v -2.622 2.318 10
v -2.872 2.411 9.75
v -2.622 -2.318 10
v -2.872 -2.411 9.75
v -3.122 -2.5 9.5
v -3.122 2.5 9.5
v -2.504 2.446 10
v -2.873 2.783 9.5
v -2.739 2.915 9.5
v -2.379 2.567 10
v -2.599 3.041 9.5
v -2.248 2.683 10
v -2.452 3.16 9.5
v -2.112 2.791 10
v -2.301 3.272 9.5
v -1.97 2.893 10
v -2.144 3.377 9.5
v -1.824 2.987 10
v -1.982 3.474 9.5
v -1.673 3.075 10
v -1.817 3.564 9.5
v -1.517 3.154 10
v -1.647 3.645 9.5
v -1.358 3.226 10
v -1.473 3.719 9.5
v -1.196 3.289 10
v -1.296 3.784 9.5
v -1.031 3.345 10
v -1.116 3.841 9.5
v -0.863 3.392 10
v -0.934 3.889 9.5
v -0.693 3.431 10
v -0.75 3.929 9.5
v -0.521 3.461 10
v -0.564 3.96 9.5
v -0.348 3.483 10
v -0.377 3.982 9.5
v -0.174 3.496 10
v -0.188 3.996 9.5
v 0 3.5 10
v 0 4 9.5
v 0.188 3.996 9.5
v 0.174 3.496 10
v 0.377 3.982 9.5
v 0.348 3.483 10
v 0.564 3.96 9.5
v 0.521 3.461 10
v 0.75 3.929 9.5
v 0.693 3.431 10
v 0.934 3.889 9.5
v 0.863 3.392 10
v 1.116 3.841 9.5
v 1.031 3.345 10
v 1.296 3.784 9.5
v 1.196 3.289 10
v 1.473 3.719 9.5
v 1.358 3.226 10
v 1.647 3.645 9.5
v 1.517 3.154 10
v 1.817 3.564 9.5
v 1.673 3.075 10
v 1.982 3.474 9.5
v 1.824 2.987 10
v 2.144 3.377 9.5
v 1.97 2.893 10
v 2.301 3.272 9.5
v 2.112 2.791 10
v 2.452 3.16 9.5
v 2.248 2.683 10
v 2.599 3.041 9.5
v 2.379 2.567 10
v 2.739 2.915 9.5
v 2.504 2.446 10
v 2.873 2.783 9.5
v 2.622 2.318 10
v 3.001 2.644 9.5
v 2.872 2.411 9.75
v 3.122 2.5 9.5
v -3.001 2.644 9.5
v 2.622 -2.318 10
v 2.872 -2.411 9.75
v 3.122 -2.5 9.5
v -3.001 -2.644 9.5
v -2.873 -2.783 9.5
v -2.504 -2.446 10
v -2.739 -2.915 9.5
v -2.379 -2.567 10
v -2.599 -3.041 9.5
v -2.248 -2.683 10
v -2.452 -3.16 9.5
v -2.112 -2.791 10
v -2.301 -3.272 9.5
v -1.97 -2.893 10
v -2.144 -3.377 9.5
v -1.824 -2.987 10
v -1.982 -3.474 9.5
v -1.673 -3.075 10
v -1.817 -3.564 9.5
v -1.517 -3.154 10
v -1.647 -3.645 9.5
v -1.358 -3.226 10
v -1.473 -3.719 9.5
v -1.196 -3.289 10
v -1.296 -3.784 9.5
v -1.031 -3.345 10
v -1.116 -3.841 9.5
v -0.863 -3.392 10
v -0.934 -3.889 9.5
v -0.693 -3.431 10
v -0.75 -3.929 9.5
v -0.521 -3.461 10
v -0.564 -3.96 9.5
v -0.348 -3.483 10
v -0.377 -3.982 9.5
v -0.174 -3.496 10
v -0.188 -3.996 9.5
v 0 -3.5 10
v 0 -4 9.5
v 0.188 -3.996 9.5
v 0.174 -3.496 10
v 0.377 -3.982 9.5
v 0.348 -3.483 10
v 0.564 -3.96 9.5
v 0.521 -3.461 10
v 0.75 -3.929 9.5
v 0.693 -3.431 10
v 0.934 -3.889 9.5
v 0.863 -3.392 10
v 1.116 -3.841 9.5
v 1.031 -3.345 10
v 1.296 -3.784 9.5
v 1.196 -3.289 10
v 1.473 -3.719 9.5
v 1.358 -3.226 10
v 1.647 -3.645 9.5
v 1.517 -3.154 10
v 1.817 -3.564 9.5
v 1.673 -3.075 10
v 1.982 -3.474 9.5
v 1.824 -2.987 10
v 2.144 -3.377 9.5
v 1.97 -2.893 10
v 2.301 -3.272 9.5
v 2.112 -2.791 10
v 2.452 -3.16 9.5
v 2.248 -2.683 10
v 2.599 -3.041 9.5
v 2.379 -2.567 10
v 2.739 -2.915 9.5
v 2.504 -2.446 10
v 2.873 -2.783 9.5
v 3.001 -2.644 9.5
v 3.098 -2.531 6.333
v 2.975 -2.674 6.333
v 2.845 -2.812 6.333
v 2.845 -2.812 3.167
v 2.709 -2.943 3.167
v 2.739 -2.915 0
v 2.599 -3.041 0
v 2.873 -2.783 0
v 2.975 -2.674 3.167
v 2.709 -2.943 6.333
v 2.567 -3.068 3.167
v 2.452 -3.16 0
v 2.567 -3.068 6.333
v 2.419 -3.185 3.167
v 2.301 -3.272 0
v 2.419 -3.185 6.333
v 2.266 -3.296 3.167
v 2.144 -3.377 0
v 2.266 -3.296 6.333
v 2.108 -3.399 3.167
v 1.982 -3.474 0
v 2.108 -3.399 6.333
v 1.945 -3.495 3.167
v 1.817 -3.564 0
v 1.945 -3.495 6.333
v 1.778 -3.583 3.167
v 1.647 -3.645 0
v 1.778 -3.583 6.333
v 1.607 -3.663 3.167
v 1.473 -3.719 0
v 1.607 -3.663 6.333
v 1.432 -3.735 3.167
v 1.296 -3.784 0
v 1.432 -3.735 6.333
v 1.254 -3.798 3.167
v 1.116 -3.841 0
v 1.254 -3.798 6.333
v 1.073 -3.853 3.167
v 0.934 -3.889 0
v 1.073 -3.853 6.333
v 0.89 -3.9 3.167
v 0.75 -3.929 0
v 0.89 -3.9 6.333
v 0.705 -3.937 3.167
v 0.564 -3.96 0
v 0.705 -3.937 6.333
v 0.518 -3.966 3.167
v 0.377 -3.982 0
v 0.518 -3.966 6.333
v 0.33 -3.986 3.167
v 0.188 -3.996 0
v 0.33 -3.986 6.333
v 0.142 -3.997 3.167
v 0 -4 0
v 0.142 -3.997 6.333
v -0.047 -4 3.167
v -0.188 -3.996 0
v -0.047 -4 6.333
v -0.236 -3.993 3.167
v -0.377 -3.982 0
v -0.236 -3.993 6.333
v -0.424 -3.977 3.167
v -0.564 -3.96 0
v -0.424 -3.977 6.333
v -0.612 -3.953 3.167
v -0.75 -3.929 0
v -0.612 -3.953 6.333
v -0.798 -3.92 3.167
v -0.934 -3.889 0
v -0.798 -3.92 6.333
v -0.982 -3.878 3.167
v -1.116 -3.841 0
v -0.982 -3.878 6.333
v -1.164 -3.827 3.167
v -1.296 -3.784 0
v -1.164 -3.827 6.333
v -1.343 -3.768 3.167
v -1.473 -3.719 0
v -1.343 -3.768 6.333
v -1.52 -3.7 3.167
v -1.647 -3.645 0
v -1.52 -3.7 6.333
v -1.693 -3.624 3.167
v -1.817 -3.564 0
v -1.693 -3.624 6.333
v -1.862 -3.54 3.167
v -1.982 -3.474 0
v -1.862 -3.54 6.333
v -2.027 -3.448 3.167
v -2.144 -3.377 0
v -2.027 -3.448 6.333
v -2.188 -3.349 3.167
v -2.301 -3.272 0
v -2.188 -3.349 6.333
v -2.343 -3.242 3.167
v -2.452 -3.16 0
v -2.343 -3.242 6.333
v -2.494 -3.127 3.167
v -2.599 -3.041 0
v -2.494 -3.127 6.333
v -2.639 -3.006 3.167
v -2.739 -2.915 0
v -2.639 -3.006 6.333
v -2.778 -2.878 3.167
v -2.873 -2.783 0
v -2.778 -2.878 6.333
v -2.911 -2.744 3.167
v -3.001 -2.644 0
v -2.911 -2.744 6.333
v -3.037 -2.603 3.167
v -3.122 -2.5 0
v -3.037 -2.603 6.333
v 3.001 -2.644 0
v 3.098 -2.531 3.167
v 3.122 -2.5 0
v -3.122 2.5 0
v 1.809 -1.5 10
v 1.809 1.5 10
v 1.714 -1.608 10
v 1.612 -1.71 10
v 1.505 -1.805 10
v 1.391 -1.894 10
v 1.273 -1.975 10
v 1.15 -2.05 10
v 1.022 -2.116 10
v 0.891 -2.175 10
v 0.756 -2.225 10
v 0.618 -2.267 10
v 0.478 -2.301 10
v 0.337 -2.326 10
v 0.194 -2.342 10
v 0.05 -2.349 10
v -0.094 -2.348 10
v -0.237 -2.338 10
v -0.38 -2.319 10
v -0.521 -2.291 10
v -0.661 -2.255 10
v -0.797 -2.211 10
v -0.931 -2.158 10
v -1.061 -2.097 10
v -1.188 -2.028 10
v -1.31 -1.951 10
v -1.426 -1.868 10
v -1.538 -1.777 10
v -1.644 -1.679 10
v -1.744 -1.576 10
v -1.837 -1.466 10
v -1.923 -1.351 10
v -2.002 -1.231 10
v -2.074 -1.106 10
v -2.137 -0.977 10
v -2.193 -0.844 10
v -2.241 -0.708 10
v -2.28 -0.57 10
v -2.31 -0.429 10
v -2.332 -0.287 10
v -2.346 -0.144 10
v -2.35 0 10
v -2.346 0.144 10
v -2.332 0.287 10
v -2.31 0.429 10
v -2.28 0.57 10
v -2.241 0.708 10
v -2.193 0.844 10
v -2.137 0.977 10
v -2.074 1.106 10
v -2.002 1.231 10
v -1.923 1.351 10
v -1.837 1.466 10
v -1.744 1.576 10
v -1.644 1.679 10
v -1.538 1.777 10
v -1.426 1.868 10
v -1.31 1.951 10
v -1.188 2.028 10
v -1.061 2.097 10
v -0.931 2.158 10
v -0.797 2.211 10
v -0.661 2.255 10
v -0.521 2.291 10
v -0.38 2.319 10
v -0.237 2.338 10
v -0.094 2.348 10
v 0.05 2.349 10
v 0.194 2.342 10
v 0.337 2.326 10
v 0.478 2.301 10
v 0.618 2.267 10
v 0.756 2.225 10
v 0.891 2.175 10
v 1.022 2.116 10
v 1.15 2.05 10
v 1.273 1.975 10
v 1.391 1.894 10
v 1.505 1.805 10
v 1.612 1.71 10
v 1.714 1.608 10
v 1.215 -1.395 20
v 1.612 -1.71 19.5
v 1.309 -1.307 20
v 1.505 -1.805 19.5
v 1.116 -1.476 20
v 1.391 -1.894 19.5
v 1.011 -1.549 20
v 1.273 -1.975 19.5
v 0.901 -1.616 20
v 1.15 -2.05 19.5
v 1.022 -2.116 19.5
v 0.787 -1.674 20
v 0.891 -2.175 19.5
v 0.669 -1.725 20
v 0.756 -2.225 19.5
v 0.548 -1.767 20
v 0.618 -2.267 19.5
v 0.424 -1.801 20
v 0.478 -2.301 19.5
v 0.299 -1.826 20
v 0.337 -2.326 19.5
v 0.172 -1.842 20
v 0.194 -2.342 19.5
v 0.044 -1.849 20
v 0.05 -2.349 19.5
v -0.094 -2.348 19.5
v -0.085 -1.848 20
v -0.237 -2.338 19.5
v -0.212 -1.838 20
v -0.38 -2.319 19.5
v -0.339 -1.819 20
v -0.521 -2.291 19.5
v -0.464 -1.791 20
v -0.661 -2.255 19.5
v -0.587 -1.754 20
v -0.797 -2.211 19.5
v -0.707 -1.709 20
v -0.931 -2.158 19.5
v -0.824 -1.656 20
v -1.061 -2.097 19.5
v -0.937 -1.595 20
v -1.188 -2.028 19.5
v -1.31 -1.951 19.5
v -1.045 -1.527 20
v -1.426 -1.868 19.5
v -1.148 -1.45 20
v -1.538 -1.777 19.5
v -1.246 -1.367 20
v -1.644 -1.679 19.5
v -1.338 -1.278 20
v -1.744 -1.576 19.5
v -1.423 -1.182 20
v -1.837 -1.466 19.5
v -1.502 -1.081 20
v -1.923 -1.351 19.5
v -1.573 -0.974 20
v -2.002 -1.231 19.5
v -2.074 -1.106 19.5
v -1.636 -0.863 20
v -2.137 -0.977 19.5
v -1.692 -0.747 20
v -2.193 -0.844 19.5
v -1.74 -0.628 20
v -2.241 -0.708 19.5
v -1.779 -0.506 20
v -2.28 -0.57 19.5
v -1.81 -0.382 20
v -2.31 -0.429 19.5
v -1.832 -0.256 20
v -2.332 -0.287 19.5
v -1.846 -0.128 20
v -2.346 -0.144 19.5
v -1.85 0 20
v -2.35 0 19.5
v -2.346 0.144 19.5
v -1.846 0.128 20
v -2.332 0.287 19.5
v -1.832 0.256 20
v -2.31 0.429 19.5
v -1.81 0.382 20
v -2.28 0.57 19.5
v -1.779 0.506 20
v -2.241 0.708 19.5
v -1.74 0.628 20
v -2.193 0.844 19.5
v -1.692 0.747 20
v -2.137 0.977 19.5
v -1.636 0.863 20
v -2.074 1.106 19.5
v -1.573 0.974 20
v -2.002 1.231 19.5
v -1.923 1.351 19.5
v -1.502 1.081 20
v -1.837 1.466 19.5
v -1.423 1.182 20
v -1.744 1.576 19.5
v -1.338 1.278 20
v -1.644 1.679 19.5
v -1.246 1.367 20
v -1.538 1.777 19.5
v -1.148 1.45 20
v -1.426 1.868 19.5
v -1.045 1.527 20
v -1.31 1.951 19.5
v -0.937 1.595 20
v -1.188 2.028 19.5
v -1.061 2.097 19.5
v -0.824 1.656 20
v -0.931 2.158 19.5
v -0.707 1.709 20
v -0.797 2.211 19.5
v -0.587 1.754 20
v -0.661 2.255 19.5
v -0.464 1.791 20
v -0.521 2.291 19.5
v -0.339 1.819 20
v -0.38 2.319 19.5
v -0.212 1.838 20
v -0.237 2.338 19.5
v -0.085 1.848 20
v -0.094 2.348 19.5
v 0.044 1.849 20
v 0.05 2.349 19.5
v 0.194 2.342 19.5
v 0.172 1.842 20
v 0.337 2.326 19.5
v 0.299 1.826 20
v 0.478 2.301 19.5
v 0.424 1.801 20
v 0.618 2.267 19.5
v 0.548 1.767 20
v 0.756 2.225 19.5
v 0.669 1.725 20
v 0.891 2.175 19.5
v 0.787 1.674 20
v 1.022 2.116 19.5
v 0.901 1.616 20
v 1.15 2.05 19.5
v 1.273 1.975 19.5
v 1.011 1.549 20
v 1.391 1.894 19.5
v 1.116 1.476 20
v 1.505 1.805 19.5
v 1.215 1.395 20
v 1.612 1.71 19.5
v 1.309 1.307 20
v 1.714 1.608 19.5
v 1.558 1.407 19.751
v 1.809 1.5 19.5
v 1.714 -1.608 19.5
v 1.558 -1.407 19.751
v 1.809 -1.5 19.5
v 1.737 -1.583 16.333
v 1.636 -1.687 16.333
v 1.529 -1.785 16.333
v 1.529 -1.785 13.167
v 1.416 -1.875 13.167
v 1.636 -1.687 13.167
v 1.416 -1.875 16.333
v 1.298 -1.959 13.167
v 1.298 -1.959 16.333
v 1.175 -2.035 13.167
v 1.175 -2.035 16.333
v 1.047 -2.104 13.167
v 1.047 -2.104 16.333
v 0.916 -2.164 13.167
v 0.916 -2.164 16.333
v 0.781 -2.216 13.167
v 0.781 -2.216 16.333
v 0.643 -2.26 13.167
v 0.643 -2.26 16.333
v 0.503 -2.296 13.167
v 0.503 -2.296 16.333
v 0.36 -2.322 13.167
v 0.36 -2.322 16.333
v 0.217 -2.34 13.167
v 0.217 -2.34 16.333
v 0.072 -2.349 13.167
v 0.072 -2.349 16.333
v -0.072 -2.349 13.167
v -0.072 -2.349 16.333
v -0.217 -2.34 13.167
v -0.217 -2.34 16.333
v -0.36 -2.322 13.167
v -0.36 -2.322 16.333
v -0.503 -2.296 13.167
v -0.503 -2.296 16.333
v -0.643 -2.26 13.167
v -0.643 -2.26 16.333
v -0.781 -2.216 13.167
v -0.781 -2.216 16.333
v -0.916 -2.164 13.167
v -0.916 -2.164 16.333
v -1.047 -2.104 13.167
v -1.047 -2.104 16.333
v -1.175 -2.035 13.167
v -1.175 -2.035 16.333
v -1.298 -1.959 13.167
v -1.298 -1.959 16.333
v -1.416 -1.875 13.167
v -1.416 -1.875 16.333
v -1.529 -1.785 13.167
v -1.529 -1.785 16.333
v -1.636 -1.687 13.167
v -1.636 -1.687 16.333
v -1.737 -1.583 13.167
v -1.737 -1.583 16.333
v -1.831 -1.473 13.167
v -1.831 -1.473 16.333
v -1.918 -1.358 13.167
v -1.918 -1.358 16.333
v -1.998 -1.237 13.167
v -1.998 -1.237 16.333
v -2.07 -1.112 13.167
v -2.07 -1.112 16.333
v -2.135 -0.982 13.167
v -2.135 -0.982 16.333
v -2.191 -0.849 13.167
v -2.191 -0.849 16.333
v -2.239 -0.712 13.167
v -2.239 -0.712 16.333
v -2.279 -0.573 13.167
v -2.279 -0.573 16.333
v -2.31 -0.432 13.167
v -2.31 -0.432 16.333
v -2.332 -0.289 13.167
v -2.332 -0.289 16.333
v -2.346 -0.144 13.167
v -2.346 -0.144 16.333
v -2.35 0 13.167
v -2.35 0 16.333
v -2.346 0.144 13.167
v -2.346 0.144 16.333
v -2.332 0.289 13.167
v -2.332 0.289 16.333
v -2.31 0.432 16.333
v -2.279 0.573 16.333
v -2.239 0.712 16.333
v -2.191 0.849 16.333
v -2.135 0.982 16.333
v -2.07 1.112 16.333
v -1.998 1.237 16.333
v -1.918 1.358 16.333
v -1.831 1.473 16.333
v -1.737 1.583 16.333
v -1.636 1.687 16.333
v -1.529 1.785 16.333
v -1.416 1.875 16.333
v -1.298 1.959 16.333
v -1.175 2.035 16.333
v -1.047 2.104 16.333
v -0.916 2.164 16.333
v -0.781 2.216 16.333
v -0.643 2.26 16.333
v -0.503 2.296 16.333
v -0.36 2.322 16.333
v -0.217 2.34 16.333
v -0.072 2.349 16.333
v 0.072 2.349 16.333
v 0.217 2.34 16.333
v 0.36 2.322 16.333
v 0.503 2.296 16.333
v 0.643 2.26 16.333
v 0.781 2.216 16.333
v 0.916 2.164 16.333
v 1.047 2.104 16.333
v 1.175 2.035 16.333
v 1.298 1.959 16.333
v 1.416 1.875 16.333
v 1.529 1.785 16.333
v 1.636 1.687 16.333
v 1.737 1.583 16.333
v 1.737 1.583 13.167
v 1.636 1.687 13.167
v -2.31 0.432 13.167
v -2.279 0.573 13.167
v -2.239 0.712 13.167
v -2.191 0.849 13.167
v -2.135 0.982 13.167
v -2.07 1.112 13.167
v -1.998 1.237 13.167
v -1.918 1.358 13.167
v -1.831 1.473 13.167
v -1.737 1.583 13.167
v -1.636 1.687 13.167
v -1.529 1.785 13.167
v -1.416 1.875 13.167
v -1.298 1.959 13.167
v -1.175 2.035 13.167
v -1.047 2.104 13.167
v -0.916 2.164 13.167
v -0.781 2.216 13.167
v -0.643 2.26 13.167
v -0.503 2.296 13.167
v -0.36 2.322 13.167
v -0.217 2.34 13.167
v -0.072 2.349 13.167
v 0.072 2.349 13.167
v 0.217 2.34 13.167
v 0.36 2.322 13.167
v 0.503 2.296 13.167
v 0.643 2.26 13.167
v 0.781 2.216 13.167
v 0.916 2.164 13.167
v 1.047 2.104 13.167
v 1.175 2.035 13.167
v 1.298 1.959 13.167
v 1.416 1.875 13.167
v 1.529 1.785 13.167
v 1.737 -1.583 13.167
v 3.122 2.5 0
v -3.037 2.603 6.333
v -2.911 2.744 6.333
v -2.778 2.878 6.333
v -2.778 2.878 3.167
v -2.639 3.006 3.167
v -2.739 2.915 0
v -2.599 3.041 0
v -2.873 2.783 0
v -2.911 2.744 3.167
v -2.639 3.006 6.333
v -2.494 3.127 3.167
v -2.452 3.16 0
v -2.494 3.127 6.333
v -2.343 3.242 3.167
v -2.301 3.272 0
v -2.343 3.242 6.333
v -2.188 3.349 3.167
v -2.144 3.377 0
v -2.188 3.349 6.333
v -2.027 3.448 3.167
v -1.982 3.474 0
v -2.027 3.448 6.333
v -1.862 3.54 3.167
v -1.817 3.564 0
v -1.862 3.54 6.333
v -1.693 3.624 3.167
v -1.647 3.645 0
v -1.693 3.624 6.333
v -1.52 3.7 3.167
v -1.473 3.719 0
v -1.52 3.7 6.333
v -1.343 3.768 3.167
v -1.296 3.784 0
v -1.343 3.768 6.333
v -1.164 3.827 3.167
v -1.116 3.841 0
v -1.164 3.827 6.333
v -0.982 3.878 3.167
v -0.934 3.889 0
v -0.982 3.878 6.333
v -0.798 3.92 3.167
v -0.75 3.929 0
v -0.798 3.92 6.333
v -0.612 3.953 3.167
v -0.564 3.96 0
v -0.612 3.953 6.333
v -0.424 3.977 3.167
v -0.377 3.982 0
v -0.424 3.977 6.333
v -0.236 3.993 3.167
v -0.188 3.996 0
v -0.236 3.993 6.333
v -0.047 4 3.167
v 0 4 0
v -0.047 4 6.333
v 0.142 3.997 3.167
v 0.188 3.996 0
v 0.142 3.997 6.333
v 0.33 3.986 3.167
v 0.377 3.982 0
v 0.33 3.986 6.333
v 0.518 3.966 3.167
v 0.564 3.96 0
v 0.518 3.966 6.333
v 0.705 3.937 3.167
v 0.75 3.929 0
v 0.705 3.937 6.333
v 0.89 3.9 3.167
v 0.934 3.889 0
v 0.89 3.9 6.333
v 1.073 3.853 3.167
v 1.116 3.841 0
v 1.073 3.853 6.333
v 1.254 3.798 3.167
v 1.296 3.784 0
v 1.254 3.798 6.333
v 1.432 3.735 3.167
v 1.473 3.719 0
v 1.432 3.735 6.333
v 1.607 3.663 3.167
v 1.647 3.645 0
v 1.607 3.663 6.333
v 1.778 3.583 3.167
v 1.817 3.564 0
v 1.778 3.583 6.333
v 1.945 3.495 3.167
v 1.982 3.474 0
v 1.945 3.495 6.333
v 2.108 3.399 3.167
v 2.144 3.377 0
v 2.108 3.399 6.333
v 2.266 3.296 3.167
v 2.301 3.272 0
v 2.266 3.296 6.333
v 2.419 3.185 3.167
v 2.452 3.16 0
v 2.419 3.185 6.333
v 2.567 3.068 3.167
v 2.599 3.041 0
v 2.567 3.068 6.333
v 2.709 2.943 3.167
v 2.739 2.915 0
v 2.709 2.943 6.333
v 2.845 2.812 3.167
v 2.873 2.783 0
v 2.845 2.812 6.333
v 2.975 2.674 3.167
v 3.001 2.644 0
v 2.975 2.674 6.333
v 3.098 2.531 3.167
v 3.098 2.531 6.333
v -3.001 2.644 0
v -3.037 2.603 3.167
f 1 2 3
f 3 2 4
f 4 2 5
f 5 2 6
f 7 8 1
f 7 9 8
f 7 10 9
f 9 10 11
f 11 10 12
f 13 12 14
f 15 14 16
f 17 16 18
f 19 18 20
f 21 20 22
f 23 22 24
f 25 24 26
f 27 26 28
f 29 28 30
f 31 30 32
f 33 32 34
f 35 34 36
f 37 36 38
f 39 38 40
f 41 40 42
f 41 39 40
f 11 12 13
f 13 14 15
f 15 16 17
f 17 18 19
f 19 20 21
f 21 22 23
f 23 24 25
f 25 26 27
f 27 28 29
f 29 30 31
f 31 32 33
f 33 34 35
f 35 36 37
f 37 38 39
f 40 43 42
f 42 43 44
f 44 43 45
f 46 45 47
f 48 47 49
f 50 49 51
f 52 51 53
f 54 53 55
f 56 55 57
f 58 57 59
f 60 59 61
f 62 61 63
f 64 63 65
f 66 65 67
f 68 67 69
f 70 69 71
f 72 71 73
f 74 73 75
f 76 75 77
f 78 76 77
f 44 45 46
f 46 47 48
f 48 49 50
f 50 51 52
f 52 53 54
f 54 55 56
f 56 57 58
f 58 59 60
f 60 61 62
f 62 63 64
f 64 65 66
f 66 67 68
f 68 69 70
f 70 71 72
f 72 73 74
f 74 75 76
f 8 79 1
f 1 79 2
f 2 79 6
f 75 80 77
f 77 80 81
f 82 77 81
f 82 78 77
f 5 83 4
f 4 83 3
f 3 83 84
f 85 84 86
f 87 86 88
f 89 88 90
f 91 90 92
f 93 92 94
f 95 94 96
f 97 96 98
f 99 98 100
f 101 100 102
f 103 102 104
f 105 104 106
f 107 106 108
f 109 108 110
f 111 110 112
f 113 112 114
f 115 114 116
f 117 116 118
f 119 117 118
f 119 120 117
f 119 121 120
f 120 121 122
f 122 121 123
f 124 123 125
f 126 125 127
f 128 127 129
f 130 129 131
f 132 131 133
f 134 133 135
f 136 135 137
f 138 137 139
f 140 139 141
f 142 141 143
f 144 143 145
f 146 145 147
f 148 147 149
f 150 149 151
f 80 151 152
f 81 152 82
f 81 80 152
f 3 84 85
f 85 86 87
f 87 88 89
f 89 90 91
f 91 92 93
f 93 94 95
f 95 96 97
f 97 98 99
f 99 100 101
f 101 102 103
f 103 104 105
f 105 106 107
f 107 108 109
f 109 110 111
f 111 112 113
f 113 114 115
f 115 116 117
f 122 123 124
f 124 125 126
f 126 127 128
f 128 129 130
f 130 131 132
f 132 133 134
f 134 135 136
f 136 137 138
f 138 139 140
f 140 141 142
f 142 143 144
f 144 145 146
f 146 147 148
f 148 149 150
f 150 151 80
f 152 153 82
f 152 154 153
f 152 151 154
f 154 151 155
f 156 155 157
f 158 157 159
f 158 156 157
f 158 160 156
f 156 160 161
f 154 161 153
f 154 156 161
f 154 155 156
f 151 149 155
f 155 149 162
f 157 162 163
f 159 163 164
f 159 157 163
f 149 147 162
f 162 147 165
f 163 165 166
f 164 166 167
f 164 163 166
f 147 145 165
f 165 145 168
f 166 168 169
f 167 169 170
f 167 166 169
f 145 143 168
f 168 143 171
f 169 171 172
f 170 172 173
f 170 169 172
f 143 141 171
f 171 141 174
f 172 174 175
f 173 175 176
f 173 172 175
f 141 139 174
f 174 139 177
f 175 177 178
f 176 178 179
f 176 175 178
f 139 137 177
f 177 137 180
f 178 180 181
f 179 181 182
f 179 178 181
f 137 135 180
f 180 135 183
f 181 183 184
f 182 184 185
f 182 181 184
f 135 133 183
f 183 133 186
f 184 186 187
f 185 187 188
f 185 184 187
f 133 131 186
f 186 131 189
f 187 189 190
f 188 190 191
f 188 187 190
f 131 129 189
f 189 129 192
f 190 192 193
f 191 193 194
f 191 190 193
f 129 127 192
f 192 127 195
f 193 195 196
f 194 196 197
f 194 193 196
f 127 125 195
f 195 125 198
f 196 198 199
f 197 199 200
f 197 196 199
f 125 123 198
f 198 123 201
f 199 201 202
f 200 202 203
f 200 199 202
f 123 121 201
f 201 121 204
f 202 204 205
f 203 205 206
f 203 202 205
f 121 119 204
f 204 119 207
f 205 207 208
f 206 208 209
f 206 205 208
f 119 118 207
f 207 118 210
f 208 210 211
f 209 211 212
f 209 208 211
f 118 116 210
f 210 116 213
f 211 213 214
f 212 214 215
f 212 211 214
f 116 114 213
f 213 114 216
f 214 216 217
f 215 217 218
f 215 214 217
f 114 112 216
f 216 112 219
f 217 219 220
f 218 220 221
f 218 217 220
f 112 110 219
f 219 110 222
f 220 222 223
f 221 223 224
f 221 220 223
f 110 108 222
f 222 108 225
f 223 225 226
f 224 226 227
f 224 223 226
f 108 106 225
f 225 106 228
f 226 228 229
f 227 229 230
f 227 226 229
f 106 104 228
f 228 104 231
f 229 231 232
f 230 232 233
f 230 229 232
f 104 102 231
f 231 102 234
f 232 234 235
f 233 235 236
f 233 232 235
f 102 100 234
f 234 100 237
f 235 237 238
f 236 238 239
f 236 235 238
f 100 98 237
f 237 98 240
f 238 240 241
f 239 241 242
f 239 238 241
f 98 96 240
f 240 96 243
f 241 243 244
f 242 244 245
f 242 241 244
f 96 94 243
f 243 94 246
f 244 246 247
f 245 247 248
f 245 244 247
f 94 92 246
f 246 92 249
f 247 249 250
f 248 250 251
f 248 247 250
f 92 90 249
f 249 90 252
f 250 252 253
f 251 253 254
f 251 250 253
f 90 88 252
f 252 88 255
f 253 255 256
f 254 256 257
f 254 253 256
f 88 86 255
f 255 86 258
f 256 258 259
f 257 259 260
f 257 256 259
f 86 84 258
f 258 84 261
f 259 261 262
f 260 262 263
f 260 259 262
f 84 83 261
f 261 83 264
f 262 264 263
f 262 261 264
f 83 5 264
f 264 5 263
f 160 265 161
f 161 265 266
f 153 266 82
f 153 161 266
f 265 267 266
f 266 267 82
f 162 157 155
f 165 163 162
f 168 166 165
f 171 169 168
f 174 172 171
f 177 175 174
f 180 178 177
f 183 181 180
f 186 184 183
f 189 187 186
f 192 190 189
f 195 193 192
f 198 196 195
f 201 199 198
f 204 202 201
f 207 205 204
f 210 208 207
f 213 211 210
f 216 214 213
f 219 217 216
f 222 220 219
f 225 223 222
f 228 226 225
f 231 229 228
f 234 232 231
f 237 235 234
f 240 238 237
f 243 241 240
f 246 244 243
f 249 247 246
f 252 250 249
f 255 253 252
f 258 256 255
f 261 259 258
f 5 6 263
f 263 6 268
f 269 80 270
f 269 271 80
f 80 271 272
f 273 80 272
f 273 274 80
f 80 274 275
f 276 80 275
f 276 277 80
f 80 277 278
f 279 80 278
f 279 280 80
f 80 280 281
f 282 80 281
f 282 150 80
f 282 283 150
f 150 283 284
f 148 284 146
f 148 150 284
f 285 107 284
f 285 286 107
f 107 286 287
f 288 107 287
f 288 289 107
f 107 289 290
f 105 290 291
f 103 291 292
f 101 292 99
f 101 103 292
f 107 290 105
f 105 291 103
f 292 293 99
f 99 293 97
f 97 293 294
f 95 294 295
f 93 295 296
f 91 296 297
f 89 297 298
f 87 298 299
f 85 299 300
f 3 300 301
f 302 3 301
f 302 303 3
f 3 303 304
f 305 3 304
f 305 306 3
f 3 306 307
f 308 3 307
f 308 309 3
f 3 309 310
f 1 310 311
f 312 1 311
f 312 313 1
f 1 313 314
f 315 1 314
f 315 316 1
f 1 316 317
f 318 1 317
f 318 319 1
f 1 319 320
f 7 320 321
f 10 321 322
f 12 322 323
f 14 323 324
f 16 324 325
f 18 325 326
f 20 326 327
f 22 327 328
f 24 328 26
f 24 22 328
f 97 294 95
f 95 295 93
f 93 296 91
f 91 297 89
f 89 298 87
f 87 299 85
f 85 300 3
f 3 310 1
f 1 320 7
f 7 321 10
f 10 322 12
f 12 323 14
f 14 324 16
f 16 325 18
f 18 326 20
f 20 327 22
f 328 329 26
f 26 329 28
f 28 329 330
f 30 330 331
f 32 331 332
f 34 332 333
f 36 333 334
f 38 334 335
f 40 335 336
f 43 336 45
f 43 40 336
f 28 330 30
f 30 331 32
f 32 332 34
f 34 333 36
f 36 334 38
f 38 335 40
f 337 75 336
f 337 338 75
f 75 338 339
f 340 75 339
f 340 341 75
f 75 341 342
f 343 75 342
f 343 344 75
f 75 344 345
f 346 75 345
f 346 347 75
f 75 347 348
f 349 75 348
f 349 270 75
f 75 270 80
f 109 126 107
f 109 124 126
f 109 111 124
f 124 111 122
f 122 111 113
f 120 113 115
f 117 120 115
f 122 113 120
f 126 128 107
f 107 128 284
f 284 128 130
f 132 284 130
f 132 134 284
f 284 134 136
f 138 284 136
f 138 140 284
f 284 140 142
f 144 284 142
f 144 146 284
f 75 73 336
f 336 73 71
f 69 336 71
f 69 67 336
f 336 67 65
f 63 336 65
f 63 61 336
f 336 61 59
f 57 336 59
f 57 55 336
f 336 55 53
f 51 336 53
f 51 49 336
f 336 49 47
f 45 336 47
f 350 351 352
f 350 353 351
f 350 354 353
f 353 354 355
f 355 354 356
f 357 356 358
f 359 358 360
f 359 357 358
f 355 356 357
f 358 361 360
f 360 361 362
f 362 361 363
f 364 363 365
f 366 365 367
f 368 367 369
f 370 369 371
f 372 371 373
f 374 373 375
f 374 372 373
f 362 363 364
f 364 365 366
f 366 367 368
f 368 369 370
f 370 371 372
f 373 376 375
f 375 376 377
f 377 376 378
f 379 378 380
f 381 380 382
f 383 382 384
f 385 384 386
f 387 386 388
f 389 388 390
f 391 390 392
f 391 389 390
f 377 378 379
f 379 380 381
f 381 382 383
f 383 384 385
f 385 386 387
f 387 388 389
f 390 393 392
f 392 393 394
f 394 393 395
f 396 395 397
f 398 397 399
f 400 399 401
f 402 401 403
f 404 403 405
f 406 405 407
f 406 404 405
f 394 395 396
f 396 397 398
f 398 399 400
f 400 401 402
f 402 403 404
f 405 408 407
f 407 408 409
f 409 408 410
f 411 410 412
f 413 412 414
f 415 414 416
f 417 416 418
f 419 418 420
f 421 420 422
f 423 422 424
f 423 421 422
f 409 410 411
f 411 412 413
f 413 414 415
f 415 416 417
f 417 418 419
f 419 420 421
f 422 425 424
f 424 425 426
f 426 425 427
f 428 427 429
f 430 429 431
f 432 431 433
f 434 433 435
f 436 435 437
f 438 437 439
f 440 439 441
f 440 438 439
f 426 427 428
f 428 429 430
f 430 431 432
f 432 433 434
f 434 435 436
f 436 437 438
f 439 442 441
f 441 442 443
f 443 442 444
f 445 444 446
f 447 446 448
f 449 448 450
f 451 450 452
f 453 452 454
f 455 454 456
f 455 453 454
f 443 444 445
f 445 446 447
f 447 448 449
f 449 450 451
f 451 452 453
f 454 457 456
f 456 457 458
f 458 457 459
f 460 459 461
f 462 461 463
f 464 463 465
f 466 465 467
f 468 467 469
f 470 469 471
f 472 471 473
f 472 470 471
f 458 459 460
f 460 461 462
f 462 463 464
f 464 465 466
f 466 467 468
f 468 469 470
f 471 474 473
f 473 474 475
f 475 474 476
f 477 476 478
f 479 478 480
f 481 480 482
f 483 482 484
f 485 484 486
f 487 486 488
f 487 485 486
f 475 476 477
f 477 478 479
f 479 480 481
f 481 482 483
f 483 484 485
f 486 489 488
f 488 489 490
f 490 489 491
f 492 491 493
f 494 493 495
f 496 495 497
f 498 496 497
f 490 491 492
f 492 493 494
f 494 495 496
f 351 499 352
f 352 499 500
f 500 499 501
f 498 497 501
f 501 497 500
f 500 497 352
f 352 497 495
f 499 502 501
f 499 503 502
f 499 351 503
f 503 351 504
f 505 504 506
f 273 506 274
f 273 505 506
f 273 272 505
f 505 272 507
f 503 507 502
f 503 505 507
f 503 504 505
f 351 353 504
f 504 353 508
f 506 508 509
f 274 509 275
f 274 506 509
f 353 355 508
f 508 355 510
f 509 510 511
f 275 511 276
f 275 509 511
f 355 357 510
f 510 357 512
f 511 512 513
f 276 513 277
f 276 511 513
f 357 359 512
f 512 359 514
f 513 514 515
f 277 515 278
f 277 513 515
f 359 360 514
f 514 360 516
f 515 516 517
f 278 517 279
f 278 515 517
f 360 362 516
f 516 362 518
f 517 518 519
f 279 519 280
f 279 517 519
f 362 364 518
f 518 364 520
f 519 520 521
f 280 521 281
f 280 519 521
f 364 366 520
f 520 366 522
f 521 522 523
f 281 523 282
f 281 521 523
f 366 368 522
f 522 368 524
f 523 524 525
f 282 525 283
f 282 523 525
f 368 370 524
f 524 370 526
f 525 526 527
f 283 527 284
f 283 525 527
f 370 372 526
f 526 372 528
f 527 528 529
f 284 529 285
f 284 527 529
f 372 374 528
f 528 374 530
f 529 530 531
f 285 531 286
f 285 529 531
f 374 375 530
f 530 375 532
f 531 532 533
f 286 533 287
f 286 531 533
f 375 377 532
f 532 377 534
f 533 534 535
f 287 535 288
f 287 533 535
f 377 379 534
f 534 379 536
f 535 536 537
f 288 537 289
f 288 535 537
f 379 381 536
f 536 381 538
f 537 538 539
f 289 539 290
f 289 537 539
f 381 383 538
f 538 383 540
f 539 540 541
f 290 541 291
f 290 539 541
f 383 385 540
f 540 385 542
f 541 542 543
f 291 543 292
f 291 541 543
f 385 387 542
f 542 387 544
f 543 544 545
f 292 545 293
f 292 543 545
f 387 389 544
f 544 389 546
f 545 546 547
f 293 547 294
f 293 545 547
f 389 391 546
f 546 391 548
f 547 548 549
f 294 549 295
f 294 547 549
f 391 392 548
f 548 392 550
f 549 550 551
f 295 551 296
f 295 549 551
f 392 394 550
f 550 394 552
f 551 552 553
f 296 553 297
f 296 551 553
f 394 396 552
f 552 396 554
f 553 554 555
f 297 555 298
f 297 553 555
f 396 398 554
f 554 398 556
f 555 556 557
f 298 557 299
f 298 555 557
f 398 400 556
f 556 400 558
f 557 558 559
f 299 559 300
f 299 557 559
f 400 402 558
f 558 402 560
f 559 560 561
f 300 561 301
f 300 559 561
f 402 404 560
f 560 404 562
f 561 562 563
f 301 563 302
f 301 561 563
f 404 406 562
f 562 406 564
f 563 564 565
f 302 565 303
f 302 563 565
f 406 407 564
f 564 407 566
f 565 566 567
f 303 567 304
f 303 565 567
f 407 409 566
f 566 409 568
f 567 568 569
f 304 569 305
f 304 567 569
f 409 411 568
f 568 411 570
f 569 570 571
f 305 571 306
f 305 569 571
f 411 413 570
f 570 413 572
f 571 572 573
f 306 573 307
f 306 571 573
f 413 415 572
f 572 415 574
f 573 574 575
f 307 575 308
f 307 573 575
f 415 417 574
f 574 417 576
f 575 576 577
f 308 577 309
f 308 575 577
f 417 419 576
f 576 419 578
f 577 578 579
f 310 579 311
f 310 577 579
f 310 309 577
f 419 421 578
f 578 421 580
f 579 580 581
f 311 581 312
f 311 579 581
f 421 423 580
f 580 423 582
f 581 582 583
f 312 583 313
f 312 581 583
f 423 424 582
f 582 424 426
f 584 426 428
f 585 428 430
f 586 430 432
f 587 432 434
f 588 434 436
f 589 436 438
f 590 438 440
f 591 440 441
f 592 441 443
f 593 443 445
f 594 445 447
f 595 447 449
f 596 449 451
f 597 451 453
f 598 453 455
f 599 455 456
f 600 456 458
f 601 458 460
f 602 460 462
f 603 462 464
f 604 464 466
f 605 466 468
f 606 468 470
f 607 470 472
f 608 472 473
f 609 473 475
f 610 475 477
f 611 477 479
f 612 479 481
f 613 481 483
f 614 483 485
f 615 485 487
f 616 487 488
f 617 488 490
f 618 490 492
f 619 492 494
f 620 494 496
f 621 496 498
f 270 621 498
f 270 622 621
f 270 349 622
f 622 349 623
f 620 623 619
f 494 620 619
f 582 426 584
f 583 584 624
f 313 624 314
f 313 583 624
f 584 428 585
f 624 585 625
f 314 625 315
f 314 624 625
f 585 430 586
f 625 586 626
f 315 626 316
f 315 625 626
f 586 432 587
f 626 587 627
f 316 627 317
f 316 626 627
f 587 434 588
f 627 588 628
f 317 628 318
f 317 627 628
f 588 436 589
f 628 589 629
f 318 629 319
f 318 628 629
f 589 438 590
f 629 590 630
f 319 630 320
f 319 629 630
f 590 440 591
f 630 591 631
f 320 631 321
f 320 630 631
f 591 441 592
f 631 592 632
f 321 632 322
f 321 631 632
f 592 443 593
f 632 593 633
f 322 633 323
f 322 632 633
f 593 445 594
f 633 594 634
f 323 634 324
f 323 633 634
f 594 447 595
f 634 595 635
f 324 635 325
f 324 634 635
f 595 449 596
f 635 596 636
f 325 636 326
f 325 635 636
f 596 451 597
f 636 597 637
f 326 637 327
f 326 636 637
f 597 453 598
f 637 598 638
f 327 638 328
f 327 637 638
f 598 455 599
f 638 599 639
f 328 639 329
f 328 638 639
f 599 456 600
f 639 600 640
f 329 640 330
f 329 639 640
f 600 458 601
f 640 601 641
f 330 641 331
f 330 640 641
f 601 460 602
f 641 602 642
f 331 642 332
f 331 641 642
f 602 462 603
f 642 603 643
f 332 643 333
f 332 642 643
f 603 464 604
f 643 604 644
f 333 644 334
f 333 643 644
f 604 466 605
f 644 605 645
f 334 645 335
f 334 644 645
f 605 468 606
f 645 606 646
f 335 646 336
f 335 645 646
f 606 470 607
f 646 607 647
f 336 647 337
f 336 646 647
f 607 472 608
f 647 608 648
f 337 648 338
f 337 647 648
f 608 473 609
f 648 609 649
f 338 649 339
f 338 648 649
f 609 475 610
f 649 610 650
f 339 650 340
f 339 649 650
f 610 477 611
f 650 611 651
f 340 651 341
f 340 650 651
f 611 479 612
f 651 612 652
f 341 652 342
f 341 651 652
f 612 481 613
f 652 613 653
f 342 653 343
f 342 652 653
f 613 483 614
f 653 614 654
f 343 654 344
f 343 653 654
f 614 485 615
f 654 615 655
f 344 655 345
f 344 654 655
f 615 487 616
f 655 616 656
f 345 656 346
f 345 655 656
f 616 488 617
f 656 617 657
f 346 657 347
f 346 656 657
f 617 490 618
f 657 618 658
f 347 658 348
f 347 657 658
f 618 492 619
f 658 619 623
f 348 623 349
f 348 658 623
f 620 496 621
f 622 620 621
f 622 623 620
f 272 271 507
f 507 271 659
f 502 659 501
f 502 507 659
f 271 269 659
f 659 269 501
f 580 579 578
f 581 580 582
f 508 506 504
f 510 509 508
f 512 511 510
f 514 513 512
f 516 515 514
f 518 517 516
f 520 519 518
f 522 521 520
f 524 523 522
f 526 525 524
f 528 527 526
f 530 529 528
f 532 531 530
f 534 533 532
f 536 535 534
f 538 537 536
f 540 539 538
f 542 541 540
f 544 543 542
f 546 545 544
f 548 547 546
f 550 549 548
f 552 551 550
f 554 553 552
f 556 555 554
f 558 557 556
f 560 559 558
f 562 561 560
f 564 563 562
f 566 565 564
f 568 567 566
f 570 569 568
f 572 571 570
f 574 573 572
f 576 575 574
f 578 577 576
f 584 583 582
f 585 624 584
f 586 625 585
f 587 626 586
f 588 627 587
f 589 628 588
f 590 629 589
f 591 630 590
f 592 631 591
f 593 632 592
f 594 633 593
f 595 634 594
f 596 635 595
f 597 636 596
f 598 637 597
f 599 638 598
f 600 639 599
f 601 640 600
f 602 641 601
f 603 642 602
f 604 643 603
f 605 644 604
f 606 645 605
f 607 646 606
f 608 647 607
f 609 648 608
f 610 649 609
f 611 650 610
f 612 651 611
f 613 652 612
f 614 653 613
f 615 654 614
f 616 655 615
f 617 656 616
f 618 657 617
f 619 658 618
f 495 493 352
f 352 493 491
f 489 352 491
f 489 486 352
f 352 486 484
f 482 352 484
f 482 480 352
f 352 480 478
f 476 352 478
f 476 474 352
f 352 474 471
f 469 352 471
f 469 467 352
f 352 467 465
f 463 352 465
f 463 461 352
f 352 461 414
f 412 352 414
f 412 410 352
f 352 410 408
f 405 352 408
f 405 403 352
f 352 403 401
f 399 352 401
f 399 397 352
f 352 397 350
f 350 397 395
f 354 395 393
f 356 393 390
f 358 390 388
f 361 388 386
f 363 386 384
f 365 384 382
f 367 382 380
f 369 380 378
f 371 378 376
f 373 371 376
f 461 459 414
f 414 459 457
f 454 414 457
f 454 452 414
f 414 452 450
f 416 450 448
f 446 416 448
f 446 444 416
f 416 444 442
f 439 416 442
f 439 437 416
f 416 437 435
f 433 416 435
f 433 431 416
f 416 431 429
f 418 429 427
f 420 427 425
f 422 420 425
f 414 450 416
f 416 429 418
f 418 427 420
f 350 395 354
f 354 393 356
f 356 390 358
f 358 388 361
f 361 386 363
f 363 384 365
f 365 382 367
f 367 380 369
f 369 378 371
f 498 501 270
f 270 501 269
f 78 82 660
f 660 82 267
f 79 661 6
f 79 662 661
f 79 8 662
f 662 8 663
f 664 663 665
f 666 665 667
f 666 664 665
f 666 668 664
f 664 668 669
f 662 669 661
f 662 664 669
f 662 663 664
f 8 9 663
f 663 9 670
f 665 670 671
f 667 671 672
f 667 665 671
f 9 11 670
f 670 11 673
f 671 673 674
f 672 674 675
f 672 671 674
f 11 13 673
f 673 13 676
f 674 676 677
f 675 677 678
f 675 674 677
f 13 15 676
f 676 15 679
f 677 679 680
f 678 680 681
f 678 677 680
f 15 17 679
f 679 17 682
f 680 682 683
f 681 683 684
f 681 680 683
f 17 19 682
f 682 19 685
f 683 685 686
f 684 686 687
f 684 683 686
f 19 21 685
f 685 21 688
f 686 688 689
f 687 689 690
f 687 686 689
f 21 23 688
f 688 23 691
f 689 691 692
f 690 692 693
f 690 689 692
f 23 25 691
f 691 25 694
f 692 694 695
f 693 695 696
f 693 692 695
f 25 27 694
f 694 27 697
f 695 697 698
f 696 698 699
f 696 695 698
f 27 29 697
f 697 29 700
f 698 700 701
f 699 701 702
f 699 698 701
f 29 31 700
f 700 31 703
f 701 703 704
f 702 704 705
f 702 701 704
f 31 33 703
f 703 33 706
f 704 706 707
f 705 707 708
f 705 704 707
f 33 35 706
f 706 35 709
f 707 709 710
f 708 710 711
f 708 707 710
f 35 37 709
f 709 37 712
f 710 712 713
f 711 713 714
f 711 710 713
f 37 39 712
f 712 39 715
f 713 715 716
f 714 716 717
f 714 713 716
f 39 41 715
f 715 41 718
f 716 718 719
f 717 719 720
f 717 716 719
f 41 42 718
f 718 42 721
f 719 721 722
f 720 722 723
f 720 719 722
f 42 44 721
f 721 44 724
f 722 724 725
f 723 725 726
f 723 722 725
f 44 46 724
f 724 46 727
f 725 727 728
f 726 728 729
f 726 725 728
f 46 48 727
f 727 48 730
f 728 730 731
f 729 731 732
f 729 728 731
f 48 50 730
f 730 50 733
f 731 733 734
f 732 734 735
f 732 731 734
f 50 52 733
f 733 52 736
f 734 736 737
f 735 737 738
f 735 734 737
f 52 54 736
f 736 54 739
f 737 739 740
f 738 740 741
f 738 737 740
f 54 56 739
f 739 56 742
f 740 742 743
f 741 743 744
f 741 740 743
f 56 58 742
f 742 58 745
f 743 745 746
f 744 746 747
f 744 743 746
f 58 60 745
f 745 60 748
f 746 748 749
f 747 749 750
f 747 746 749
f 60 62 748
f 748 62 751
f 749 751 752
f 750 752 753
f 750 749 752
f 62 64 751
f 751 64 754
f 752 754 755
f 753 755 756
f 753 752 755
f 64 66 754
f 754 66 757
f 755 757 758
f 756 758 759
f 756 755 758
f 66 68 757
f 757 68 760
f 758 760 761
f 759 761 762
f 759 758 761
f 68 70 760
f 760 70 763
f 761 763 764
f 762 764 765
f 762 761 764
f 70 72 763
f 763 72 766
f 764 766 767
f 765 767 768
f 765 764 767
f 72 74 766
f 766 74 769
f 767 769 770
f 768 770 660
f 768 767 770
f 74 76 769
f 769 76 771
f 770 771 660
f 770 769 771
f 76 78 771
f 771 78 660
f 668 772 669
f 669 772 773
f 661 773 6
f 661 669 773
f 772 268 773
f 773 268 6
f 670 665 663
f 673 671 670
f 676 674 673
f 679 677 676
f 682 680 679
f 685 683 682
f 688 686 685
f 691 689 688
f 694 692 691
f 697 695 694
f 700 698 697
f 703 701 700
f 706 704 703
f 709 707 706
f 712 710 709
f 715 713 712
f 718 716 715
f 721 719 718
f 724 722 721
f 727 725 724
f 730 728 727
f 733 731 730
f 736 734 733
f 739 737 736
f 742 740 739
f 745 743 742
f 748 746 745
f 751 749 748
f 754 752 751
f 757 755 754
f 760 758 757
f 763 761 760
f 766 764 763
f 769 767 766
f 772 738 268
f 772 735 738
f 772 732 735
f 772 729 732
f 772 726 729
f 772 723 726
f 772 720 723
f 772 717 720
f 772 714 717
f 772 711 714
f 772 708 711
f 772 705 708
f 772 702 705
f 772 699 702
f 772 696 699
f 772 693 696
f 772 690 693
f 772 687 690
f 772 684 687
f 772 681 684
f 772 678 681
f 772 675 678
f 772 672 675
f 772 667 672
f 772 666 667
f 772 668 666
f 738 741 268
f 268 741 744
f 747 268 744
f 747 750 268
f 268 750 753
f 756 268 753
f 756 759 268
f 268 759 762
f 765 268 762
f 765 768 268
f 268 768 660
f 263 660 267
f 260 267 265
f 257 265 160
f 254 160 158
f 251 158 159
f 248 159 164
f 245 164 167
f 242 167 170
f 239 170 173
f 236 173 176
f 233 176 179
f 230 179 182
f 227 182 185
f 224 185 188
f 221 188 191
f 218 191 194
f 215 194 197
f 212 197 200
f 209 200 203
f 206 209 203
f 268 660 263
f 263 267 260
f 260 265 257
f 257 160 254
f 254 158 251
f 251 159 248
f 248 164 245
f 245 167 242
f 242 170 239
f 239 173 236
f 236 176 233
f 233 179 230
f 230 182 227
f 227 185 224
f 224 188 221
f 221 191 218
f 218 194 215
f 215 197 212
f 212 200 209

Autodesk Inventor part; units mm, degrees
ref_plane "YZ Plane" through (0, 0, 0) normal (1, 0, 0) x (0, 1, 0)
ref_plane "XZ Plane" through (0, 0, 0) normal (0, 1, 0) x (-1, 0, 0)
ref_plane "XY Plane" through (0, 0, 0) normal (0, 0, 1) x (1, 0, 0)
sketch "Sketch1" plane through (0, 0, 0) normal (0, 0, 1) x (1, 0, 0)
  circle A0 centre (0, 0) radius 4
  line L0 (3.1225, 2.5) -> (3.1225, -2.5)
  line L1 (-3.1225, 2.5) -> (-3.1225, -2.5)
  dimension "d0" = 8
  dimension "d1" = 5
  dimension "d2" = 5
extrude "Extrusion1" add sketch "Sketch1" along normal blind 10 contours L0 A0 L1
sketch "Sketch2" plane through (0, 0, 10) normal (0, 0, 1) x (1, 0, 0)
  circle A0 centre (0, 0) radius 2.35
  line L0 (1.809, 1.5) -> (1.809, -1.5)
  dimension "d5" = 4.7
  dimension "d6" = 3
extrude "Extrusion2" add sketch "Sketch2" along normal blind 10 contours L0 A0 picked at (0.4227, 0)
chamfer "Chamfer1" distance 0.5 angle 45 6 edges at (1.809, 0, 20) (-2.35, 0, 20) (3.1225, 0, 10) (0, 4, 10) (0, -4, 10) (-3.1225, 0, 10)
properties part number "Shaft_Peg"
